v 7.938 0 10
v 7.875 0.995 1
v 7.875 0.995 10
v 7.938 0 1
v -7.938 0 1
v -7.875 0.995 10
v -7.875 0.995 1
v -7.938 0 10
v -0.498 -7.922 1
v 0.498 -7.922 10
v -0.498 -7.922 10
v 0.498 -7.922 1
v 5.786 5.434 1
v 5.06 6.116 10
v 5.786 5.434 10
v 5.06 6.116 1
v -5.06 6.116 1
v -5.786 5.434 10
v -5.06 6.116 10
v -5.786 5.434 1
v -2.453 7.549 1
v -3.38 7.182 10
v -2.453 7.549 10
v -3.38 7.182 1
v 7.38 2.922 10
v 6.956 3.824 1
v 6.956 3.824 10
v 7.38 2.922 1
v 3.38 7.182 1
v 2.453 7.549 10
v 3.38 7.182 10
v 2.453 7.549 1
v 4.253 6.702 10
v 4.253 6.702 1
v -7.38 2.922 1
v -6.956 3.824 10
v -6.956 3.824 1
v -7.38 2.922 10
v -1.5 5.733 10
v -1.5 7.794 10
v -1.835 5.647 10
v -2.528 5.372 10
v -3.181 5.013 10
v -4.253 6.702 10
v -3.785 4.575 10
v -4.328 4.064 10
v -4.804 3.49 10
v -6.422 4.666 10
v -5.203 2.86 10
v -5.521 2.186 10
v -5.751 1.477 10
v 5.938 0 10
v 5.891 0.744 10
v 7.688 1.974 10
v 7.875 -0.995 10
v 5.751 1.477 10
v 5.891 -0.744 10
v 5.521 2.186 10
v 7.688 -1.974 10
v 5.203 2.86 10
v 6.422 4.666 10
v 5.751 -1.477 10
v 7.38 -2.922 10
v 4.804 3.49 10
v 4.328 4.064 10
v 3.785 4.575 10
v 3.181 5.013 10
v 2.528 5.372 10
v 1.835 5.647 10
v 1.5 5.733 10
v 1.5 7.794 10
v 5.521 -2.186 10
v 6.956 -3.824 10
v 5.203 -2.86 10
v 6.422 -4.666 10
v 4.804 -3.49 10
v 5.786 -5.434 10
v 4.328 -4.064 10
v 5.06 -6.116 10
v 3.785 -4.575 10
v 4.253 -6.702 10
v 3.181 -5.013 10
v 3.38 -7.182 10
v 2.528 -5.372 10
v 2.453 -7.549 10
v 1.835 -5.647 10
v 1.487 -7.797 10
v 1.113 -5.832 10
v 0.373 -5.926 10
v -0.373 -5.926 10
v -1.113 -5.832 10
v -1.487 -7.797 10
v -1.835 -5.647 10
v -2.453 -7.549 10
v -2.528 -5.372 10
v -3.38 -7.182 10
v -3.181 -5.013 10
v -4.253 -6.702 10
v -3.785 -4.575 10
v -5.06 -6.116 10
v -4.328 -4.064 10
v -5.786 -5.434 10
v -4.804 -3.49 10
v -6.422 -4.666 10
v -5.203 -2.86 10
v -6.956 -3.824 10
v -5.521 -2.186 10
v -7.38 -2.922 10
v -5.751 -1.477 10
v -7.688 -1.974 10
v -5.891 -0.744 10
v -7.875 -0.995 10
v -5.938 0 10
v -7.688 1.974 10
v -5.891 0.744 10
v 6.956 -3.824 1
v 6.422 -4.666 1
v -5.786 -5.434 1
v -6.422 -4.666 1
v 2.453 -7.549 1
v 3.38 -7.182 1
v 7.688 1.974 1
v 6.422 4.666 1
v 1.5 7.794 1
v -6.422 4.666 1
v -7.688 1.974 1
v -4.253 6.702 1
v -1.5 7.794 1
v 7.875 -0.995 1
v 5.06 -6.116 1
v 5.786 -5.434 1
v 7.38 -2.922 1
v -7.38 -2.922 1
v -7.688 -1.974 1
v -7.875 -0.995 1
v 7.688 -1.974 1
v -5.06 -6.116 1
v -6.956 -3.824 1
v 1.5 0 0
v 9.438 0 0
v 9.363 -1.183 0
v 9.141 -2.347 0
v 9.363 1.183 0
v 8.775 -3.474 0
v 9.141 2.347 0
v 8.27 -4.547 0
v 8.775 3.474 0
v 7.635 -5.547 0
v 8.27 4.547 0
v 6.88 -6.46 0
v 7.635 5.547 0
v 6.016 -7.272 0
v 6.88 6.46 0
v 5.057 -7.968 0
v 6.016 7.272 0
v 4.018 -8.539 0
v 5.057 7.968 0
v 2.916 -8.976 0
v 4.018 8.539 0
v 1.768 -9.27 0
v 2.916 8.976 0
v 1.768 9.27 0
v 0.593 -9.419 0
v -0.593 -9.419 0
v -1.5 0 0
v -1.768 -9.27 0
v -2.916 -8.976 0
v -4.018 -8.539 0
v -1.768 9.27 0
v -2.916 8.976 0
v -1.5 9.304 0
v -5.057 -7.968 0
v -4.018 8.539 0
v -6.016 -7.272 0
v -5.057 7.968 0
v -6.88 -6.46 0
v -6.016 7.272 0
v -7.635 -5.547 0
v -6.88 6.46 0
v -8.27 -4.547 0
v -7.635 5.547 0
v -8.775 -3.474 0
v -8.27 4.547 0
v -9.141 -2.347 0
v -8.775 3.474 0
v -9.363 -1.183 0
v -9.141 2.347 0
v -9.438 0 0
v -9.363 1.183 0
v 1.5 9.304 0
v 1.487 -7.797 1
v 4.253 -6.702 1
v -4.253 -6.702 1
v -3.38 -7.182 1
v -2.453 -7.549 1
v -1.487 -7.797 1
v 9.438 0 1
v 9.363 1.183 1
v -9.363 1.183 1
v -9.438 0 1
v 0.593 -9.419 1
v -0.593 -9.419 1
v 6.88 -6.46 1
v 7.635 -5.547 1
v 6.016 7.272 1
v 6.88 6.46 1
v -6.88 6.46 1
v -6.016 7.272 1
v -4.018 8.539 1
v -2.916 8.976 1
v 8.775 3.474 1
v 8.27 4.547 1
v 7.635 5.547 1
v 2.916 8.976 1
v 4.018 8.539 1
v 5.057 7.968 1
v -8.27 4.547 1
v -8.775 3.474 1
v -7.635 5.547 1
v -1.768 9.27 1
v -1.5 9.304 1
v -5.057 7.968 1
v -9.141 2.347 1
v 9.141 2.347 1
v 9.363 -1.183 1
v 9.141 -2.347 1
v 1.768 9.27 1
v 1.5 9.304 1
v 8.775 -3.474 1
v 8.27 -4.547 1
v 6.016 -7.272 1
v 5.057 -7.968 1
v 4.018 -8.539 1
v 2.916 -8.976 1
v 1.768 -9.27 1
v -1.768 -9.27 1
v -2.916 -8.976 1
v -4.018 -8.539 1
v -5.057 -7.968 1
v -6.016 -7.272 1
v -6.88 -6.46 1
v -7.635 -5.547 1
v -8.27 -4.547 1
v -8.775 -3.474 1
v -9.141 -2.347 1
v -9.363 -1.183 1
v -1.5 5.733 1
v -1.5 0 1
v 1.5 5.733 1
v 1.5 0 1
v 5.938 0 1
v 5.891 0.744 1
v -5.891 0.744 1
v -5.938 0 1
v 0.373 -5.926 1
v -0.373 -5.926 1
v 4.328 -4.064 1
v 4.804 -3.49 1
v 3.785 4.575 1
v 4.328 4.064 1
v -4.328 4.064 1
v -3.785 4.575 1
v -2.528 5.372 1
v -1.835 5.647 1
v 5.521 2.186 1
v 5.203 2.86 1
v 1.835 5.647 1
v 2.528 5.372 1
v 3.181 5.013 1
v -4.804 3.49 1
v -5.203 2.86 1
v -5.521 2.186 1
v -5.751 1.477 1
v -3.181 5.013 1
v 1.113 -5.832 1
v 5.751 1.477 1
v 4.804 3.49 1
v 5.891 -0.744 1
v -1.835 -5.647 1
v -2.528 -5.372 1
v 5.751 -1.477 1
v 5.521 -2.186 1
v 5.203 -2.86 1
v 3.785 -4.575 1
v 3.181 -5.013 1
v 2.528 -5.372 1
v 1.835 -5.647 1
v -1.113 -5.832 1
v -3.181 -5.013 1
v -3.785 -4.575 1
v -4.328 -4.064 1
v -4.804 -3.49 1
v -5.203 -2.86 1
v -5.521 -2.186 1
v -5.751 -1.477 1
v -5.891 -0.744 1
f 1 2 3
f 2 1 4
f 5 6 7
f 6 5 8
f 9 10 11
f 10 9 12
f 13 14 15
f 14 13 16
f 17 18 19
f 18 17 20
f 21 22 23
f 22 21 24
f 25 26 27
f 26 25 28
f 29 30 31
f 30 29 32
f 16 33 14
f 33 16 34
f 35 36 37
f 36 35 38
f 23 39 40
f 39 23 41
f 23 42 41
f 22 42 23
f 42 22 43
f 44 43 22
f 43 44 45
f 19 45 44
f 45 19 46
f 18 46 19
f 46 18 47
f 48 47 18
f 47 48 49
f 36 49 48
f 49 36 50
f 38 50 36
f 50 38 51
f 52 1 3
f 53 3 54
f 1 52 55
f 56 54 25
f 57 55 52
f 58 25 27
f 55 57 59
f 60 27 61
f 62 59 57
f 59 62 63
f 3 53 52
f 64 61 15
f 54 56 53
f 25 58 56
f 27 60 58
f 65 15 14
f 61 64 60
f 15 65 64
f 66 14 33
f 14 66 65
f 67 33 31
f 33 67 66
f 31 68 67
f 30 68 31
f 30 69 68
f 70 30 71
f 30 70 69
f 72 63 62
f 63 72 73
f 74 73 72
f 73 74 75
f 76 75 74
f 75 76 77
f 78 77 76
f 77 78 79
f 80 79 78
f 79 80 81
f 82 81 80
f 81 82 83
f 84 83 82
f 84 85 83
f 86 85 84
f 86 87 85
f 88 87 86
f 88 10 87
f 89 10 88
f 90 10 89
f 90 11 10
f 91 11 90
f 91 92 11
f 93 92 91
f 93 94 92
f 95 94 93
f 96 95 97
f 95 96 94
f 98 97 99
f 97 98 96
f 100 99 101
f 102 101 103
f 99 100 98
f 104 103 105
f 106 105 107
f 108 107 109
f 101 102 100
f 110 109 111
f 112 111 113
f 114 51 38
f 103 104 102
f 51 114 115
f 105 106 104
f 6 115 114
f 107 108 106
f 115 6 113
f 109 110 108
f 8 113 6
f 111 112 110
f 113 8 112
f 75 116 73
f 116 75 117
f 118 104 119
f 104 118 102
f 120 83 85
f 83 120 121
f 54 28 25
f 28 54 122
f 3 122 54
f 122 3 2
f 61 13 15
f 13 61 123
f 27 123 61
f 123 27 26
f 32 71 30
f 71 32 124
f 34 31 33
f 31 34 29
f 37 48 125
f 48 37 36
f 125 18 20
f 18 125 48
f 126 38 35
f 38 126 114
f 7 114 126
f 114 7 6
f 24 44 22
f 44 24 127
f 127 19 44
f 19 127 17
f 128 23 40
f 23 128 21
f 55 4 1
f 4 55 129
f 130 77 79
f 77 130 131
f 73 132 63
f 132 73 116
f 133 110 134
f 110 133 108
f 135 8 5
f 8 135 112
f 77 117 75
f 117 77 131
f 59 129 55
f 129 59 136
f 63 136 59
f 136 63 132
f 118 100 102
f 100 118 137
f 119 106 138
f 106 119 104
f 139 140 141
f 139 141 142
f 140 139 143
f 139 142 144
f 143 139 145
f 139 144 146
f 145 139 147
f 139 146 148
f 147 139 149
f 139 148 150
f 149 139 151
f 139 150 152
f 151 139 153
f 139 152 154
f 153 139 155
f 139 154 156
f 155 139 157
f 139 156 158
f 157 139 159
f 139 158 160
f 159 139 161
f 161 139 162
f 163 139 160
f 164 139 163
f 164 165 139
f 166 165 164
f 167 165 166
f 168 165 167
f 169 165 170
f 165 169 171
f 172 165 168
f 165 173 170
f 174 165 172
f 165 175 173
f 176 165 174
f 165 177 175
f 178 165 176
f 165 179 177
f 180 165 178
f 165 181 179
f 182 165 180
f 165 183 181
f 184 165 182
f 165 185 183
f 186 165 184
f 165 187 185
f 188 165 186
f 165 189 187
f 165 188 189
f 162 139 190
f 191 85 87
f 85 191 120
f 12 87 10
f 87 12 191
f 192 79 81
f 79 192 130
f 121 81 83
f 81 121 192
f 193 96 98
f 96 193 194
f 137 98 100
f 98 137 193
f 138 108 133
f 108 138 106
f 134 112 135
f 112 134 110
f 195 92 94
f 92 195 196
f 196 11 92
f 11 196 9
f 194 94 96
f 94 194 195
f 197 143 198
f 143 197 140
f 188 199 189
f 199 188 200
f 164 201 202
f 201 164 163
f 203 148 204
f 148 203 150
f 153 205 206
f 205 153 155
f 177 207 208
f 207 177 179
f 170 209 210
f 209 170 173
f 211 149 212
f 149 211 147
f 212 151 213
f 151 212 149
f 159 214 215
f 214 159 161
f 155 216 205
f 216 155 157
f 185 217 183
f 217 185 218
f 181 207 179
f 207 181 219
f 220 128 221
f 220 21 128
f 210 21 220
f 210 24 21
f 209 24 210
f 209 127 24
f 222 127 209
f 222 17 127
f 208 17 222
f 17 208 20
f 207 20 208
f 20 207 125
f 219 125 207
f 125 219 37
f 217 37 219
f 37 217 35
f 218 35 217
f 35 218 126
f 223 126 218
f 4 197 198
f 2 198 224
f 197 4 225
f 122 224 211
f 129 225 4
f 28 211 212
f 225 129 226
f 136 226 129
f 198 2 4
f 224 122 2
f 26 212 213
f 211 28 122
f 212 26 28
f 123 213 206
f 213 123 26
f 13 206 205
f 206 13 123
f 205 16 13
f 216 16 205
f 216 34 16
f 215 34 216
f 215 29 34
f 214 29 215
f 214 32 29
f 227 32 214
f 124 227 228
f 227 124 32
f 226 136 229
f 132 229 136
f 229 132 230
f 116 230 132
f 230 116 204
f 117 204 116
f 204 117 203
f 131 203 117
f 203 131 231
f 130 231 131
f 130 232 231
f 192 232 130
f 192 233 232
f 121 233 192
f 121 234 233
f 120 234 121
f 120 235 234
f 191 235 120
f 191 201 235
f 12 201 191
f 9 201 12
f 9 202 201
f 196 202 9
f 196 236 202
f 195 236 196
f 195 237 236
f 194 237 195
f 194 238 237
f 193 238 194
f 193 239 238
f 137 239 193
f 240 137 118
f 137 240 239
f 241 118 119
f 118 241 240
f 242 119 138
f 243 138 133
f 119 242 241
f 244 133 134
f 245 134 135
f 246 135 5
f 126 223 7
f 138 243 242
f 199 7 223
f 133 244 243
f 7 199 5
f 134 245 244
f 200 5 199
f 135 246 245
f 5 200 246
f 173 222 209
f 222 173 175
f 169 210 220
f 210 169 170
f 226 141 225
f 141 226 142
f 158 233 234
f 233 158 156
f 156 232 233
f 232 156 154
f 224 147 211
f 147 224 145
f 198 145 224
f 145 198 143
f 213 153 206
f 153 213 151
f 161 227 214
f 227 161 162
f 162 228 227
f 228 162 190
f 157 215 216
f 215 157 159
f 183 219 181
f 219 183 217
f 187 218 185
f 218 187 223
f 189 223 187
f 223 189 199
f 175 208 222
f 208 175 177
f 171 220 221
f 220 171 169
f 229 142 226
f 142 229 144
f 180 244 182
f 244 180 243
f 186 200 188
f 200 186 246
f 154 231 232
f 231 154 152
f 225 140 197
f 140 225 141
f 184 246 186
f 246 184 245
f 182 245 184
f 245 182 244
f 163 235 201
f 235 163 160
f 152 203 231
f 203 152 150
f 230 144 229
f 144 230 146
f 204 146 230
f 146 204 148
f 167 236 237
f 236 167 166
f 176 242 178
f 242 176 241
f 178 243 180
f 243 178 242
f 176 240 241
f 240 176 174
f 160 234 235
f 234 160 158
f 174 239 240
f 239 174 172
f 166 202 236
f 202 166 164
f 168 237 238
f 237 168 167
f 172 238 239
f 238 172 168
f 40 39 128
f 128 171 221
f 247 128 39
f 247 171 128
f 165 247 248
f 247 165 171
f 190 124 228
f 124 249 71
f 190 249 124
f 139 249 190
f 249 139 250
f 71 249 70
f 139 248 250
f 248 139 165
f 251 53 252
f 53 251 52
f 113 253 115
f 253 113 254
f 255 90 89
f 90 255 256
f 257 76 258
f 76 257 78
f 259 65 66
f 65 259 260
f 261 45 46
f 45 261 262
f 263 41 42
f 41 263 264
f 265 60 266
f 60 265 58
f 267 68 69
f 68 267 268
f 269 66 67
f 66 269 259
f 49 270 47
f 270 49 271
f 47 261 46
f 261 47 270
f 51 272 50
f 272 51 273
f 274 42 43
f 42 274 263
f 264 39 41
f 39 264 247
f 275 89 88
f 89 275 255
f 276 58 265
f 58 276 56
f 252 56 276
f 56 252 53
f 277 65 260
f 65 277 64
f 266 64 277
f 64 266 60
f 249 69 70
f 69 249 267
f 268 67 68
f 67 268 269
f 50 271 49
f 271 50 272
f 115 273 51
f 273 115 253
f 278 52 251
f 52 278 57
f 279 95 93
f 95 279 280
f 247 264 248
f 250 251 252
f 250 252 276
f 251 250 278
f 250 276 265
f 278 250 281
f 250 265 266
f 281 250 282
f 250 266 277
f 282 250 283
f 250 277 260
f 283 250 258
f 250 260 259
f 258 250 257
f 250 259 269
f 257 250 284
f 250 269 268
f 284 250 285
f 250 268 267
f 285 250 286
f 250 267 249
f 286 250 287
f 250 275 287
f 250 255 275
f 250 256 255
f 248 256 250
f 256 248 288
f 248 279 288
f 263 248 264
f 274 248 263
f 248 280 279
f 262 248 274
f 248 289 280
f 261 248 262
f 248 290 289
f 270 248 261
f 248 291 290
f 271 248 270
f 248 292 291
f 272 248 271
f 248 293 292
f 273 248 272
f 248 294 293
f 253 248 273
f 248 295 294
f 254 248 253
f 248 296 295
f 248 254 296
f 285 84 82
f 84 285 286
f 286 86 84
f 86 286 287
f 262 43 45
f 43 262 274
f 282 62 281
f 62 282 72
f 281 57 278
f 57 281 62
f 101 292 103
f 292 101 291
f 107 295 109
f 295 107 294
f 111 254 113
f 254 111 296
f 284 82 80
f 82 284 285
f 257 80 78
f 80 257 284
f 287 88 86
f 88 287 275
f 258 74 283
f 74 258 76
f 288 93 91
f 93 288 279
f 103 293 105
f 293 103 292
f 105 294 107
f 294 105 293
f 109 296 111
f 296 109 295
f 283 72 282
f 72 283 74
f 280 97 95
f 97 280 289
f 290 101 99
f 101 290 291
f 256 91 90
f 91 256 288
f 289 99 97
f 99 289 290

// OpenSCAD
$fn=50;

module plug(holeDiameter, plugHeight, slotWidth, slotLength, isHollow=true) {
    topwall=1;
    sidewall=4;
    difference() {
        union() {
            cylinder(plugHeight,d=holeDiameter);
            cylinder(topwall,d=holeDiameter+3);  // hardcode overlap
        }
        #translate([-slotWidth/2,0,0]) cube([slotWidth,plugHeight,plugHeight]);
        if (isHollow) {
            #translate([0,0,topwall]) cylinder(plugHeight,d=holeDiameter-sidewall);
        }
    }
    
}

// thin ethernet is 5,10
plug(5/8*25.4, 10, 3, 10);
